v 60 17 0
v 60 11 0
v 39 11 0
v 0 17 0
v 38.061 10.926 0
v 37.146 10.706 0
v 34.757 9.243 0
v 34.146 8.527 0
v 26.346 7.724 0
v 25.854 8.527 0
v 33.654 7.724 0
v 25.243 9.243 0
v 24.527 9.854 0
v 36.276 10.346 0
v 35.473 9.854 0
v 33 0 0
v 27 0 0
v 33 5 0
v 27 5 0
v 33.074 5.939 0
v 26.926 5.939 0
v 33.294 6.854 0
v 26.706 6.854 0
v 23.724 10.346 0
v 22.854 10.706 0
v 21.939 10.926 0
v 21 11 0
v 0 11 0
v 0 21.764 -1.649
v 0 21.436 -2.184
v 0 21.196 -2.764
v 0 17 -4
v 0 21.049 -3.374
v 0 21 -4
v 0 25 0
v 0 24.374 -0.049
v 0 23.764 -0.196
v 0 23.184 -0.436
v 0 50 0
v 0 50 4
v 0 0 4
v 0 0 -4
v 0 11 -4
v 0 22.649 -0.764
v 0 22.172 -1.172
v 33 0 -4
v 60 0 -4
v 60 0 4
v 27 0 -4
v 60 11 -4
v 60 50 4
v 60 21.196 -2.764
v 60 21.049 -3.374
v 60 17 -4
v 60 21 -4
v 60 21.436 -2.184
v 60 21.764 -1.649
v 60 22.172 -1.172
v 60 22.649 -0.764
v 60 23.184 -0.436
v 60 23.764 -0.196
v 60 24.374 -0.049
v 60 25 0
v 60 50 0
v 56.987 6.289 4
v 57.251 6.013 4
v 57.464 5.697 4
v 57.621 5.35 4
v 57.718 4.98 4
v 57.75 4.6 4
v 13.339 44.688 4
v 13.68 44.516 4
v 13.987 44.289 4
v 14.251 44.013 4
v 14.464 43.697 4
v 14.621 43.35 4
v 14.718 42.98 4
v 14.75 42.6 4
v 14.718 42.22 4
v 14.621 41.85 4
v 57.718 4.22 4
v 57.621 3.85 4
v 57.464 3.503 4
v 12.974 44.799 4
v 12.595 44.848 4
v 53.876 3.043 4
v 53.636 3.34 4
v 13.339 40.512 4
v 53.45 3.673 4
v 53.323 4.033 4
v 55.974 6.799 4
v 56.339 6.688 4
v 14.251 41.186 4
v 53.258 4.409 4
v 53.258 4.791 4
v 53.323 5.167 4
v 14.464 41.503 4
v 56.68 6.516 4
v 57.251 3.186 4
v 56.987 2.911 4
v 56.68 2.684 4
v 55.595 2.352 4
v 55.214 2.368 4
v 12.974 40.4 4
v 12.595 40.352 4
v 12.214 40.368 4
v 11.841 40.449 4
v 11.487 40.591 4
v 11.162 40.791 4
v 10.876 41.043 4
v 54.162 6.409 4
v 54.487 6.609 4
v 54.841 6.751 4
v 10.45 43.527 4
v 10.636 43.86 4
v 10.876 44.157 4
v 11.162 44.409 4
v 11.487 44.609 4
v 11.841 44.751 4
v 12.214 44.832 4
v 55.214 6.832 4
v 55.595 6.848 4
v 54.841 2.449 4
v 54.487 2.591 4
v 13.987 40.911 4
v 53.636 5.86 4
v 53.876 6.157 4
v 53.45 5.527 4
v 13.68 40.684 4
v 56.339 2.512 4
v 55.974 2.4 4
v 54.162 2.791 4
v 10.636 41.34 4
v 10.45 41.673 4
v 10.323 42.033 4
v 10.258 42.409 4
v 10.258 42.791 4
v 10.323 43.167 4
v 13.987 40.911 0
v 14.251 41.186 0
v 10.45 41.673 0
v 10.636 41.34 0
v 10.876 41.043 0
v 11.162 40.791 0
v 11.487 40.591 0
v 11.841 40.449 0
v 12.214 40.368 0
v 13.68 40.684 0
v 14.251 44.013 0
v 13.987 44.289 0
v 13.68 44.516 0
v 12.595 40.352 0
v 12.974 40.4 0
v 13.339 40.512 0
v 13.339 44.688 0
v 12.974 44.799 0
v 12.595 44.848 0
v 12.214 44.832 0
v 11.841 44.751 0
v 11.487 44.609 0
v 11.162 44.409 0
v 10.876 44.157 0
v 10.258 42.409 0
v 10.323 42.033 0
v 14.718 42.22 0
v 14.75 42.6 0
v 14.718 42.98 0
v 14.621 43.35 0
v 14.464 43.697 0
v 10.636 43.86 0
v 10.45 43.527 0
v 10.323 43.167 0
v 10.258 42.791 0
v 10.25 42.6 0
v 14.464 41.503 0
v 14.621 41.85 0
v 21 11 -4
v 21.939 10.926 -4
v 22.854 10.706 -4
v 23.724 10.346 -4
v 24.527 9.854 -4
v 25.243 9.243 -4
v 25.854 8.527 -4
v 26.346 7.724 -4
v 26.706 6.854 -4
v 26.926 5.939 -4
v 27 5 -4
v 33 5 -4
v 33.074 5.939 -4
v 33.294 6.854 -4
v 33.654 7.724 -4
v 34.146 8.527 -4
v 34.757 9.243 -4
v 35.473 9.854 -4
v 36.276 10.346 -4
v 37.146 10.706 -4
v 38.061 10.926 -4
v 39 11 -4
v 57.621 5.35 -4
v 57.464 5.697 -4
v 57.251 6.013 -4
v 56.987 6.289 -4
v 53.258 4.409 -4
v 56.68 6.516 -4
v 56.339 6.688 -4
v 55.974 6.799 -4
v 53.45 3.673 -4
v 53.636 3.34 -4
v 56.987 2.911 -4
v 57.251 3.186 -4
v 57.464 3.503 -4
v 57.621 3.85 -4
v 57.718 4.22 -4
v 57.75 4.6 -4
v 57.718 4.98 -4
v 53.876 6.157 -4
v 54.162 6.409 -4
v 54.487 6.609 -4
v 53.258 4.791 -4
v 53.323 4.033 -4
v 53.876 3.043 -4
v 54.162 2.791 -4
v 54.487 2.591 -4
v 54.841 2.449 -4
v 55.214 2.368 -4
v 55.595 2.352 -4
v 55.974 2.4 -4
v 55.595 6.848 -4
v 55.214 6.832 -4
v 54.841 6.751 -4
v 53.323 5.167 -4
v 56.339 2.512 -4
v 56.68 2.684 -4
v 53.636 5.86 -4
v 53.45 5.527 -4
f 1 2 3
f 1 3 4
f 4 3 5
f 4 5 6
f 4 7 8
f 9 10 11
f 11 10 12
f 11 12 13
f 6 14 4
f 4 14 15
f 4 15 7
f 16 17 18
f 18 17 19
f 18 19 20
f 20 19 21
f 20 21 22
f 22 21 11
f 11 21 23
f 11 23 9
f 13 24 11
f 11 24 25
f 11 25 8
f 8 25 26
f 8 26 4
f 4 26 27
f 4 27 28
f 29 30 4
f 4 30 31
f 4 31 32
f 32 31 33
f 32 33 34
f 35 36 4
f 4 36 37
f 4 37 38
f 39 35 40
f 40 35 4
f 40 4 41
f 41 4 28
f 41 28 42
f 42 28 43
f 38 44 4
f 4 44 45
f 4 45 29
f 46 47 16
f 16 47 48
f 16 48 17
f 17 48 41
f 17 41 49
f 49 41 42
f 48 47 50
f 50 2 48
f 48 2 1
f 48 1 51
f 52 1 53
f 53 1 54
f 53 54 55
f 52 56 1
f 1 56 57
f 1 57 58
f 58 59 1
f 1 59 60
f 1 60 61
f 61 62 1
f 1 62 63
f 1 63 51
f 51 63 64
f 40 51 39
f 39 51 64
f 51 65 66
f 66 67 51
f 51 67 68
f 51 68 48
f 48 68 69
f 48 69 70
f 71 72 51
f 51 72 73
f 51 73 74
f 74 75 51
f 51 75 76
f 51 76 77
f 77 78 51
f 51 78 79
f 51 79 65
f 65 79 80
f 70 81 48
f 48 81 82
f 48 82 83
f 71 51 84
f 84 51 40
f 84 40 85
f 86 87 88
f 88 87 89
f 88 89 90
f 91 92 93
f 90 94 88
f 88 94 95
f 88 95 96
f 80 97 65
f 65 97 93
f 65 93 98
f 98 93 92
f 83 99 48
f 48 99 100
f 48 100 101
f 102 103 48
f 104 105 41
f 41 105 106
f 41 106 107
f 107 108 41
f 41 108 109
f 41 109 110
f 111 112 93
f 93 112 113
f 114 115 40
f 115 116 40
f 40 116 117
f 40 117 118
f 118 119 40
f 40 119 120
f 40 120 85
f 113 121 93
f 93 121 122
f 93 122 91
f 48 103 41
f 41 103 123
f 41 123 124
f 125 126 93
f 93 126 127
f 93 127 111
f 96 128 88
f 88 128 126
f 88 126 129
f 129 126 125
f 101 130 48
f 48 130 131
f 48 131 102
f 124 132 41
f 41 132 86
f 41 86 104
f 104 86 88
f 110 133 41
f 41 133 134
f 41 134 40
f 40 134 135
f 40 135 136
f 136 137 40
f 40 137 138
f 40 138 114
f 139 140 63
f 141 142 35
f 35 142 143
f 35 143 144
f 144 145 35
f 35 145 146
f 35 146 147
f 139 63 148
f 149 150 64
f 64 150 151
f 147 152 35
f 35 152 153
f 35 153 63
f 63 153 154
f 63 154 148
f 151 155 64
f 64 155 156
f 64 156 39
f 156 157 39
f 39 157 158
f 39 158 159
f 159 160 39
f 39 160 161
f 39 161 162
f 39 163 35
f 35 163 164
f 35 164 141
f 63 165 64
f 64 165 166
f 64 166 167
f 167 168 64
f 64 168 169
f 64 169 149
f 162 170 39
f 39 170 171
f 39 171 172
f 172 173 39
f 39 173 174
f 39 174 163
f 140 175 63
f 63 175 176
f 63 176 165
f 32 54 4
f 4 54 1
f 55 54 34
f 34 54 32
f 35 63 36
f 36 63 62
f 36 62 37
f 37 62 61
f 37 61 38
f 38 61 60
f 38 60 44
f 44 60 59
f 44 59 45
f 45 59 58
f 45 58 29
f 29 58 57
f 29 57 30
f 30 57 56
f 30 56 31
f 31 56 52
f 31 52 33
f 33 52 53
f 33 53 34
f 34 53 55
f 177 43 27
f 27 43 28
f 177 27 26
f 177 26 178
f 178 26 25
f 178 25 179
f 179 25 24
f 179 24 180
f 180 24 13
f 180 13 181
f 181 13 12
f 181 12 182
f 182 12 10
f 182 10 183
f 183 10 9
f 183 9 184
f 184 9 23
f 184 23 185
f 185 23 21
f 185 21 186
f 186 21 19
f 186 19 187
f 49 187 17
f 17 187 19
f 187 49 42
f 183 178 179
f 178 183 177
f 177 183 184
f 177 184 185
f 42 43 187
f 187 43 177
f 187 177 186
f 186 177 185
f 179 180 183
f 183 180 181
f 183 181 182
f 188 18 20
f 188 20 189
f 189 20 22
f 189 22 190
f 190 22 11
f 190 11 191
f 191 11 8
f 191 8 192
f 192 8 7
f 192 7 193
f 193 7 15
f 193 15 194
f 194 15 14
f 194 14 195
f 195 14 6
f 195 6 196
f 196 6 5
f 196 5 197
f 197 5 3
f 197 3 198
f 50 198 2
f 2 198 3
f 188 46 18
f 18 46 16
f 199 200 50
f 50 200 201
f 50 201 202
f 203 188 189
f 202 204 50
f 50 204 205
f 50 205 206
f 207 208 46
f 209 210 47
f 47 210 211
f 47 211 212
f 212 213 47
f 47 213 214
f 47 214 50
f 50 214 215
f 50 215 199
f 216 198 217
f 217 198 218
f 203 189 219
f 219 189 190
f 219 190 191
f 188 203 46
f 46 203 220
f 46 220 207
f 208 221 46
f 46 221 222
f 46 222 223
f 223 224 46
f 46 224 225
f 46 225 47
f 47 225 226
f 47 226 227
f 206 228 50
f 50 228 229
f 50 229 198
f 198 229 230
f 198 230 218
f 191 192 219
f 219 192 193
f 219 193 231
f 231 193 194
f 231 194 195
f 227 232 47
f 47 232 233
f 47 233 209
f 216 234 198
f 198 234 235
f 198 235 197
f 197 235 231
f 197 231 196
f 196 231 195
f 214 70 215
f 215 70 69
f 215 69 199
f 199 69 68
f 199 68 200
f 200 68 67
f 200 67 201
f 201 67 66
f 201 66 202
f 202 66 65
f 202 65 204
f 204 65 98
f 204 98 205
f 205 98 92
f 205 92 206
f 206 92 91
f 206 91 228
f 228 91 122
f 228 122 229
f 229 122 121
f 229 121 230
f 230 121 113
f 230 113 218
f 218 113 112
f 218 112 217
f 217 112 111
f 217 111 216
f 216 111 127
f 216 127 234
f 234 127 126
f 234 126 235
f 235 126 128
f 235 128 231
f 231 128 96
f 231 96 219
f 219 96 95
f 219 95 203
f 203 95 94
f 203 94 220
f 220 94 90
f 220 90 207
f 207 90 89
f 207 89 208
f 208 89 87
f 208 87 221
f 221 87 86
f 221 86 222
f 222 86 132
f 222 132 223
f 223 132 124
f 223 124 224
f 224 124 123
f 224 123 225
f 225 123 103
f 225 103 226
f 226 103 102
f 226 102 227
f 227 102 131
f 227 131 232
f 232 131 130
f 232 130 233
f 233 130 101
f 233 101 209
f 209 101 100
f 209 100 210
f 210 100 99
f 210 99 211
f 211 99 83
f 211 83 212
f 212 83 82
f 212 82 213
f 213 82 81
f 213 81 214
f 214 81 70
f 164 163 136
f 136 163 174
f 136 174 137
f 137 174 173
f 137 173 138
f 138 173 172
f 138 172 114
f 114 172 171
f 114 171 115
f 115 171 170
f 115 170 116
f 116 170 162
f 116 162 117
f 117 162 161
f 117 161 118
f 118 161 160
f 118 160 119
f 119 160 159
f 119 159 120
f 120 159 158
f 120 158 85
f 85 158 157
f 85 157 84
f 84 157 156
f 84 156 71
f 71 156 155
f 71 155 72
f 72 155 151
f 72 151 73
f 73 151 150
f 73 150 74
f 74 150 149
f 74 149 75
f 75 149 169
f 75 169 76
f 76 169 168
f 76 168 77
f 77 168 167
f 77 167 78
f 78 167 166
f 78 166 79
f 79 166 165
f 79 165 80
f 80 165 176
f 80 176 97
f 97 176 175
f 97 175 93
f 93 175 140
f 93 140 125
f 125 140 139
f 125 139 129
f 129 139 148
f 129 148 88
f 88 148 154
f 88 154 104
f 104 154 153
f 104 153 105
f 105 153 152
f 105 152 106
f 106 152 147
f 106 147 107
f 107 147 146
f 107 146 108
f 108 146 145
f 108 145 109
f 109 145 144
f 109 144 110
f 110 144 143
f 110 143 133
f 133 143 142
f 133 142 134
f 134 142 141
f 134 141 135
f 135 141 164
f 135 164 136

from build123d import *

# Parameters (mm, degrees)
SKETCH1_W           = 60
SKETCH1_H           = 50
BOSS_EXTRUDE1_DEPTH = 4
SKETCH2_W           = 60
SKETCH2_H           = 4
BOSS_EXTRUDE2_DEPTH = 4
FILLET1_R           = 4
BOSS_EXTRUDE3_DEPTH = 4
SKETCH3_R           = 2.25
CUT_EXTRUDE1_DEPTH  = 79.511145706


with BuildPart() as part:
    # Sketch1 → Boss-Extrude1 (new body)
    with BuildSketch(Plane.XY):
        with Locations((30, 25)):
            Rectangle(SKETCH1_W, SKETCH1_H)
    extrude(amount=BOSS_EXTRUDE1_DEPTH)

    # Sketch2 → Boss-Extrude2 (add)
    with BuildSketch(Plane(origin=(0, 0, 0), x_dir=(-1, 0, 0), z_dir=(0, 0, -1))):
        with Locations((-30, 19)):
            Rectangle(SKETCH2_W, SKETCH2_H)
    extrude(amount=BOSS_EXTRUDE2_DEPTH)

    # Fillet1
    fillet1_edges = [part.edges().sort_by_distance(p)[0] for p in [
        (30, 21, 0),
    ]]
    fillet(fillet1_edges, radius=FILLET1_R - 0.0001)  # a hair under: the kernel refuses the full size

    # Sketch6 → Boss-Extrude3 (add)
    with BuildSketch(Plane(origin=(0, 0, 0), x_dir=(-1, 0, 0), z_dir=(0, 0, -1))):
        with BuildLine():
            Line((0, 0), (0, 11))
            Line((0, 11), (-21, 11))
            ThreePointArc((-21, 11), (-25.242640687, 9.242640687), (-27, 5))
            Line((-27, 5), (-27, 0))
            Line((-27, 0), (0, 0))
        make_face()
        with BuildLine():
            Line((-33, 5), (-33, 0))
            Line((-33, 0), (-60, 0))
            Line((-60, 0), (-60, 11))
            Line((-60, 11), (-39, 11))
            ThreePointArc((-39, 11), (-34.757359313, 9.242640687), (-33, 5))
        make_face()
    extrude(amount=BOSS_EXTRUDE3_DEPTH)

    # Sketch3 → Cut-Extrude1 (cut, through all)
    with BuildSketch(Plane.XY.offset(4)):
        with Locations((12.5, 42.6)):
            Circle(SKETCH3_R)
        with Locations((55.5, 4.6)):
            Circle(SKETCH3_R)
    extrude(amount=-CUT_EXTRUDE1_DEPTH, mode=Mode.SUBTRACT)


solid = part.part
